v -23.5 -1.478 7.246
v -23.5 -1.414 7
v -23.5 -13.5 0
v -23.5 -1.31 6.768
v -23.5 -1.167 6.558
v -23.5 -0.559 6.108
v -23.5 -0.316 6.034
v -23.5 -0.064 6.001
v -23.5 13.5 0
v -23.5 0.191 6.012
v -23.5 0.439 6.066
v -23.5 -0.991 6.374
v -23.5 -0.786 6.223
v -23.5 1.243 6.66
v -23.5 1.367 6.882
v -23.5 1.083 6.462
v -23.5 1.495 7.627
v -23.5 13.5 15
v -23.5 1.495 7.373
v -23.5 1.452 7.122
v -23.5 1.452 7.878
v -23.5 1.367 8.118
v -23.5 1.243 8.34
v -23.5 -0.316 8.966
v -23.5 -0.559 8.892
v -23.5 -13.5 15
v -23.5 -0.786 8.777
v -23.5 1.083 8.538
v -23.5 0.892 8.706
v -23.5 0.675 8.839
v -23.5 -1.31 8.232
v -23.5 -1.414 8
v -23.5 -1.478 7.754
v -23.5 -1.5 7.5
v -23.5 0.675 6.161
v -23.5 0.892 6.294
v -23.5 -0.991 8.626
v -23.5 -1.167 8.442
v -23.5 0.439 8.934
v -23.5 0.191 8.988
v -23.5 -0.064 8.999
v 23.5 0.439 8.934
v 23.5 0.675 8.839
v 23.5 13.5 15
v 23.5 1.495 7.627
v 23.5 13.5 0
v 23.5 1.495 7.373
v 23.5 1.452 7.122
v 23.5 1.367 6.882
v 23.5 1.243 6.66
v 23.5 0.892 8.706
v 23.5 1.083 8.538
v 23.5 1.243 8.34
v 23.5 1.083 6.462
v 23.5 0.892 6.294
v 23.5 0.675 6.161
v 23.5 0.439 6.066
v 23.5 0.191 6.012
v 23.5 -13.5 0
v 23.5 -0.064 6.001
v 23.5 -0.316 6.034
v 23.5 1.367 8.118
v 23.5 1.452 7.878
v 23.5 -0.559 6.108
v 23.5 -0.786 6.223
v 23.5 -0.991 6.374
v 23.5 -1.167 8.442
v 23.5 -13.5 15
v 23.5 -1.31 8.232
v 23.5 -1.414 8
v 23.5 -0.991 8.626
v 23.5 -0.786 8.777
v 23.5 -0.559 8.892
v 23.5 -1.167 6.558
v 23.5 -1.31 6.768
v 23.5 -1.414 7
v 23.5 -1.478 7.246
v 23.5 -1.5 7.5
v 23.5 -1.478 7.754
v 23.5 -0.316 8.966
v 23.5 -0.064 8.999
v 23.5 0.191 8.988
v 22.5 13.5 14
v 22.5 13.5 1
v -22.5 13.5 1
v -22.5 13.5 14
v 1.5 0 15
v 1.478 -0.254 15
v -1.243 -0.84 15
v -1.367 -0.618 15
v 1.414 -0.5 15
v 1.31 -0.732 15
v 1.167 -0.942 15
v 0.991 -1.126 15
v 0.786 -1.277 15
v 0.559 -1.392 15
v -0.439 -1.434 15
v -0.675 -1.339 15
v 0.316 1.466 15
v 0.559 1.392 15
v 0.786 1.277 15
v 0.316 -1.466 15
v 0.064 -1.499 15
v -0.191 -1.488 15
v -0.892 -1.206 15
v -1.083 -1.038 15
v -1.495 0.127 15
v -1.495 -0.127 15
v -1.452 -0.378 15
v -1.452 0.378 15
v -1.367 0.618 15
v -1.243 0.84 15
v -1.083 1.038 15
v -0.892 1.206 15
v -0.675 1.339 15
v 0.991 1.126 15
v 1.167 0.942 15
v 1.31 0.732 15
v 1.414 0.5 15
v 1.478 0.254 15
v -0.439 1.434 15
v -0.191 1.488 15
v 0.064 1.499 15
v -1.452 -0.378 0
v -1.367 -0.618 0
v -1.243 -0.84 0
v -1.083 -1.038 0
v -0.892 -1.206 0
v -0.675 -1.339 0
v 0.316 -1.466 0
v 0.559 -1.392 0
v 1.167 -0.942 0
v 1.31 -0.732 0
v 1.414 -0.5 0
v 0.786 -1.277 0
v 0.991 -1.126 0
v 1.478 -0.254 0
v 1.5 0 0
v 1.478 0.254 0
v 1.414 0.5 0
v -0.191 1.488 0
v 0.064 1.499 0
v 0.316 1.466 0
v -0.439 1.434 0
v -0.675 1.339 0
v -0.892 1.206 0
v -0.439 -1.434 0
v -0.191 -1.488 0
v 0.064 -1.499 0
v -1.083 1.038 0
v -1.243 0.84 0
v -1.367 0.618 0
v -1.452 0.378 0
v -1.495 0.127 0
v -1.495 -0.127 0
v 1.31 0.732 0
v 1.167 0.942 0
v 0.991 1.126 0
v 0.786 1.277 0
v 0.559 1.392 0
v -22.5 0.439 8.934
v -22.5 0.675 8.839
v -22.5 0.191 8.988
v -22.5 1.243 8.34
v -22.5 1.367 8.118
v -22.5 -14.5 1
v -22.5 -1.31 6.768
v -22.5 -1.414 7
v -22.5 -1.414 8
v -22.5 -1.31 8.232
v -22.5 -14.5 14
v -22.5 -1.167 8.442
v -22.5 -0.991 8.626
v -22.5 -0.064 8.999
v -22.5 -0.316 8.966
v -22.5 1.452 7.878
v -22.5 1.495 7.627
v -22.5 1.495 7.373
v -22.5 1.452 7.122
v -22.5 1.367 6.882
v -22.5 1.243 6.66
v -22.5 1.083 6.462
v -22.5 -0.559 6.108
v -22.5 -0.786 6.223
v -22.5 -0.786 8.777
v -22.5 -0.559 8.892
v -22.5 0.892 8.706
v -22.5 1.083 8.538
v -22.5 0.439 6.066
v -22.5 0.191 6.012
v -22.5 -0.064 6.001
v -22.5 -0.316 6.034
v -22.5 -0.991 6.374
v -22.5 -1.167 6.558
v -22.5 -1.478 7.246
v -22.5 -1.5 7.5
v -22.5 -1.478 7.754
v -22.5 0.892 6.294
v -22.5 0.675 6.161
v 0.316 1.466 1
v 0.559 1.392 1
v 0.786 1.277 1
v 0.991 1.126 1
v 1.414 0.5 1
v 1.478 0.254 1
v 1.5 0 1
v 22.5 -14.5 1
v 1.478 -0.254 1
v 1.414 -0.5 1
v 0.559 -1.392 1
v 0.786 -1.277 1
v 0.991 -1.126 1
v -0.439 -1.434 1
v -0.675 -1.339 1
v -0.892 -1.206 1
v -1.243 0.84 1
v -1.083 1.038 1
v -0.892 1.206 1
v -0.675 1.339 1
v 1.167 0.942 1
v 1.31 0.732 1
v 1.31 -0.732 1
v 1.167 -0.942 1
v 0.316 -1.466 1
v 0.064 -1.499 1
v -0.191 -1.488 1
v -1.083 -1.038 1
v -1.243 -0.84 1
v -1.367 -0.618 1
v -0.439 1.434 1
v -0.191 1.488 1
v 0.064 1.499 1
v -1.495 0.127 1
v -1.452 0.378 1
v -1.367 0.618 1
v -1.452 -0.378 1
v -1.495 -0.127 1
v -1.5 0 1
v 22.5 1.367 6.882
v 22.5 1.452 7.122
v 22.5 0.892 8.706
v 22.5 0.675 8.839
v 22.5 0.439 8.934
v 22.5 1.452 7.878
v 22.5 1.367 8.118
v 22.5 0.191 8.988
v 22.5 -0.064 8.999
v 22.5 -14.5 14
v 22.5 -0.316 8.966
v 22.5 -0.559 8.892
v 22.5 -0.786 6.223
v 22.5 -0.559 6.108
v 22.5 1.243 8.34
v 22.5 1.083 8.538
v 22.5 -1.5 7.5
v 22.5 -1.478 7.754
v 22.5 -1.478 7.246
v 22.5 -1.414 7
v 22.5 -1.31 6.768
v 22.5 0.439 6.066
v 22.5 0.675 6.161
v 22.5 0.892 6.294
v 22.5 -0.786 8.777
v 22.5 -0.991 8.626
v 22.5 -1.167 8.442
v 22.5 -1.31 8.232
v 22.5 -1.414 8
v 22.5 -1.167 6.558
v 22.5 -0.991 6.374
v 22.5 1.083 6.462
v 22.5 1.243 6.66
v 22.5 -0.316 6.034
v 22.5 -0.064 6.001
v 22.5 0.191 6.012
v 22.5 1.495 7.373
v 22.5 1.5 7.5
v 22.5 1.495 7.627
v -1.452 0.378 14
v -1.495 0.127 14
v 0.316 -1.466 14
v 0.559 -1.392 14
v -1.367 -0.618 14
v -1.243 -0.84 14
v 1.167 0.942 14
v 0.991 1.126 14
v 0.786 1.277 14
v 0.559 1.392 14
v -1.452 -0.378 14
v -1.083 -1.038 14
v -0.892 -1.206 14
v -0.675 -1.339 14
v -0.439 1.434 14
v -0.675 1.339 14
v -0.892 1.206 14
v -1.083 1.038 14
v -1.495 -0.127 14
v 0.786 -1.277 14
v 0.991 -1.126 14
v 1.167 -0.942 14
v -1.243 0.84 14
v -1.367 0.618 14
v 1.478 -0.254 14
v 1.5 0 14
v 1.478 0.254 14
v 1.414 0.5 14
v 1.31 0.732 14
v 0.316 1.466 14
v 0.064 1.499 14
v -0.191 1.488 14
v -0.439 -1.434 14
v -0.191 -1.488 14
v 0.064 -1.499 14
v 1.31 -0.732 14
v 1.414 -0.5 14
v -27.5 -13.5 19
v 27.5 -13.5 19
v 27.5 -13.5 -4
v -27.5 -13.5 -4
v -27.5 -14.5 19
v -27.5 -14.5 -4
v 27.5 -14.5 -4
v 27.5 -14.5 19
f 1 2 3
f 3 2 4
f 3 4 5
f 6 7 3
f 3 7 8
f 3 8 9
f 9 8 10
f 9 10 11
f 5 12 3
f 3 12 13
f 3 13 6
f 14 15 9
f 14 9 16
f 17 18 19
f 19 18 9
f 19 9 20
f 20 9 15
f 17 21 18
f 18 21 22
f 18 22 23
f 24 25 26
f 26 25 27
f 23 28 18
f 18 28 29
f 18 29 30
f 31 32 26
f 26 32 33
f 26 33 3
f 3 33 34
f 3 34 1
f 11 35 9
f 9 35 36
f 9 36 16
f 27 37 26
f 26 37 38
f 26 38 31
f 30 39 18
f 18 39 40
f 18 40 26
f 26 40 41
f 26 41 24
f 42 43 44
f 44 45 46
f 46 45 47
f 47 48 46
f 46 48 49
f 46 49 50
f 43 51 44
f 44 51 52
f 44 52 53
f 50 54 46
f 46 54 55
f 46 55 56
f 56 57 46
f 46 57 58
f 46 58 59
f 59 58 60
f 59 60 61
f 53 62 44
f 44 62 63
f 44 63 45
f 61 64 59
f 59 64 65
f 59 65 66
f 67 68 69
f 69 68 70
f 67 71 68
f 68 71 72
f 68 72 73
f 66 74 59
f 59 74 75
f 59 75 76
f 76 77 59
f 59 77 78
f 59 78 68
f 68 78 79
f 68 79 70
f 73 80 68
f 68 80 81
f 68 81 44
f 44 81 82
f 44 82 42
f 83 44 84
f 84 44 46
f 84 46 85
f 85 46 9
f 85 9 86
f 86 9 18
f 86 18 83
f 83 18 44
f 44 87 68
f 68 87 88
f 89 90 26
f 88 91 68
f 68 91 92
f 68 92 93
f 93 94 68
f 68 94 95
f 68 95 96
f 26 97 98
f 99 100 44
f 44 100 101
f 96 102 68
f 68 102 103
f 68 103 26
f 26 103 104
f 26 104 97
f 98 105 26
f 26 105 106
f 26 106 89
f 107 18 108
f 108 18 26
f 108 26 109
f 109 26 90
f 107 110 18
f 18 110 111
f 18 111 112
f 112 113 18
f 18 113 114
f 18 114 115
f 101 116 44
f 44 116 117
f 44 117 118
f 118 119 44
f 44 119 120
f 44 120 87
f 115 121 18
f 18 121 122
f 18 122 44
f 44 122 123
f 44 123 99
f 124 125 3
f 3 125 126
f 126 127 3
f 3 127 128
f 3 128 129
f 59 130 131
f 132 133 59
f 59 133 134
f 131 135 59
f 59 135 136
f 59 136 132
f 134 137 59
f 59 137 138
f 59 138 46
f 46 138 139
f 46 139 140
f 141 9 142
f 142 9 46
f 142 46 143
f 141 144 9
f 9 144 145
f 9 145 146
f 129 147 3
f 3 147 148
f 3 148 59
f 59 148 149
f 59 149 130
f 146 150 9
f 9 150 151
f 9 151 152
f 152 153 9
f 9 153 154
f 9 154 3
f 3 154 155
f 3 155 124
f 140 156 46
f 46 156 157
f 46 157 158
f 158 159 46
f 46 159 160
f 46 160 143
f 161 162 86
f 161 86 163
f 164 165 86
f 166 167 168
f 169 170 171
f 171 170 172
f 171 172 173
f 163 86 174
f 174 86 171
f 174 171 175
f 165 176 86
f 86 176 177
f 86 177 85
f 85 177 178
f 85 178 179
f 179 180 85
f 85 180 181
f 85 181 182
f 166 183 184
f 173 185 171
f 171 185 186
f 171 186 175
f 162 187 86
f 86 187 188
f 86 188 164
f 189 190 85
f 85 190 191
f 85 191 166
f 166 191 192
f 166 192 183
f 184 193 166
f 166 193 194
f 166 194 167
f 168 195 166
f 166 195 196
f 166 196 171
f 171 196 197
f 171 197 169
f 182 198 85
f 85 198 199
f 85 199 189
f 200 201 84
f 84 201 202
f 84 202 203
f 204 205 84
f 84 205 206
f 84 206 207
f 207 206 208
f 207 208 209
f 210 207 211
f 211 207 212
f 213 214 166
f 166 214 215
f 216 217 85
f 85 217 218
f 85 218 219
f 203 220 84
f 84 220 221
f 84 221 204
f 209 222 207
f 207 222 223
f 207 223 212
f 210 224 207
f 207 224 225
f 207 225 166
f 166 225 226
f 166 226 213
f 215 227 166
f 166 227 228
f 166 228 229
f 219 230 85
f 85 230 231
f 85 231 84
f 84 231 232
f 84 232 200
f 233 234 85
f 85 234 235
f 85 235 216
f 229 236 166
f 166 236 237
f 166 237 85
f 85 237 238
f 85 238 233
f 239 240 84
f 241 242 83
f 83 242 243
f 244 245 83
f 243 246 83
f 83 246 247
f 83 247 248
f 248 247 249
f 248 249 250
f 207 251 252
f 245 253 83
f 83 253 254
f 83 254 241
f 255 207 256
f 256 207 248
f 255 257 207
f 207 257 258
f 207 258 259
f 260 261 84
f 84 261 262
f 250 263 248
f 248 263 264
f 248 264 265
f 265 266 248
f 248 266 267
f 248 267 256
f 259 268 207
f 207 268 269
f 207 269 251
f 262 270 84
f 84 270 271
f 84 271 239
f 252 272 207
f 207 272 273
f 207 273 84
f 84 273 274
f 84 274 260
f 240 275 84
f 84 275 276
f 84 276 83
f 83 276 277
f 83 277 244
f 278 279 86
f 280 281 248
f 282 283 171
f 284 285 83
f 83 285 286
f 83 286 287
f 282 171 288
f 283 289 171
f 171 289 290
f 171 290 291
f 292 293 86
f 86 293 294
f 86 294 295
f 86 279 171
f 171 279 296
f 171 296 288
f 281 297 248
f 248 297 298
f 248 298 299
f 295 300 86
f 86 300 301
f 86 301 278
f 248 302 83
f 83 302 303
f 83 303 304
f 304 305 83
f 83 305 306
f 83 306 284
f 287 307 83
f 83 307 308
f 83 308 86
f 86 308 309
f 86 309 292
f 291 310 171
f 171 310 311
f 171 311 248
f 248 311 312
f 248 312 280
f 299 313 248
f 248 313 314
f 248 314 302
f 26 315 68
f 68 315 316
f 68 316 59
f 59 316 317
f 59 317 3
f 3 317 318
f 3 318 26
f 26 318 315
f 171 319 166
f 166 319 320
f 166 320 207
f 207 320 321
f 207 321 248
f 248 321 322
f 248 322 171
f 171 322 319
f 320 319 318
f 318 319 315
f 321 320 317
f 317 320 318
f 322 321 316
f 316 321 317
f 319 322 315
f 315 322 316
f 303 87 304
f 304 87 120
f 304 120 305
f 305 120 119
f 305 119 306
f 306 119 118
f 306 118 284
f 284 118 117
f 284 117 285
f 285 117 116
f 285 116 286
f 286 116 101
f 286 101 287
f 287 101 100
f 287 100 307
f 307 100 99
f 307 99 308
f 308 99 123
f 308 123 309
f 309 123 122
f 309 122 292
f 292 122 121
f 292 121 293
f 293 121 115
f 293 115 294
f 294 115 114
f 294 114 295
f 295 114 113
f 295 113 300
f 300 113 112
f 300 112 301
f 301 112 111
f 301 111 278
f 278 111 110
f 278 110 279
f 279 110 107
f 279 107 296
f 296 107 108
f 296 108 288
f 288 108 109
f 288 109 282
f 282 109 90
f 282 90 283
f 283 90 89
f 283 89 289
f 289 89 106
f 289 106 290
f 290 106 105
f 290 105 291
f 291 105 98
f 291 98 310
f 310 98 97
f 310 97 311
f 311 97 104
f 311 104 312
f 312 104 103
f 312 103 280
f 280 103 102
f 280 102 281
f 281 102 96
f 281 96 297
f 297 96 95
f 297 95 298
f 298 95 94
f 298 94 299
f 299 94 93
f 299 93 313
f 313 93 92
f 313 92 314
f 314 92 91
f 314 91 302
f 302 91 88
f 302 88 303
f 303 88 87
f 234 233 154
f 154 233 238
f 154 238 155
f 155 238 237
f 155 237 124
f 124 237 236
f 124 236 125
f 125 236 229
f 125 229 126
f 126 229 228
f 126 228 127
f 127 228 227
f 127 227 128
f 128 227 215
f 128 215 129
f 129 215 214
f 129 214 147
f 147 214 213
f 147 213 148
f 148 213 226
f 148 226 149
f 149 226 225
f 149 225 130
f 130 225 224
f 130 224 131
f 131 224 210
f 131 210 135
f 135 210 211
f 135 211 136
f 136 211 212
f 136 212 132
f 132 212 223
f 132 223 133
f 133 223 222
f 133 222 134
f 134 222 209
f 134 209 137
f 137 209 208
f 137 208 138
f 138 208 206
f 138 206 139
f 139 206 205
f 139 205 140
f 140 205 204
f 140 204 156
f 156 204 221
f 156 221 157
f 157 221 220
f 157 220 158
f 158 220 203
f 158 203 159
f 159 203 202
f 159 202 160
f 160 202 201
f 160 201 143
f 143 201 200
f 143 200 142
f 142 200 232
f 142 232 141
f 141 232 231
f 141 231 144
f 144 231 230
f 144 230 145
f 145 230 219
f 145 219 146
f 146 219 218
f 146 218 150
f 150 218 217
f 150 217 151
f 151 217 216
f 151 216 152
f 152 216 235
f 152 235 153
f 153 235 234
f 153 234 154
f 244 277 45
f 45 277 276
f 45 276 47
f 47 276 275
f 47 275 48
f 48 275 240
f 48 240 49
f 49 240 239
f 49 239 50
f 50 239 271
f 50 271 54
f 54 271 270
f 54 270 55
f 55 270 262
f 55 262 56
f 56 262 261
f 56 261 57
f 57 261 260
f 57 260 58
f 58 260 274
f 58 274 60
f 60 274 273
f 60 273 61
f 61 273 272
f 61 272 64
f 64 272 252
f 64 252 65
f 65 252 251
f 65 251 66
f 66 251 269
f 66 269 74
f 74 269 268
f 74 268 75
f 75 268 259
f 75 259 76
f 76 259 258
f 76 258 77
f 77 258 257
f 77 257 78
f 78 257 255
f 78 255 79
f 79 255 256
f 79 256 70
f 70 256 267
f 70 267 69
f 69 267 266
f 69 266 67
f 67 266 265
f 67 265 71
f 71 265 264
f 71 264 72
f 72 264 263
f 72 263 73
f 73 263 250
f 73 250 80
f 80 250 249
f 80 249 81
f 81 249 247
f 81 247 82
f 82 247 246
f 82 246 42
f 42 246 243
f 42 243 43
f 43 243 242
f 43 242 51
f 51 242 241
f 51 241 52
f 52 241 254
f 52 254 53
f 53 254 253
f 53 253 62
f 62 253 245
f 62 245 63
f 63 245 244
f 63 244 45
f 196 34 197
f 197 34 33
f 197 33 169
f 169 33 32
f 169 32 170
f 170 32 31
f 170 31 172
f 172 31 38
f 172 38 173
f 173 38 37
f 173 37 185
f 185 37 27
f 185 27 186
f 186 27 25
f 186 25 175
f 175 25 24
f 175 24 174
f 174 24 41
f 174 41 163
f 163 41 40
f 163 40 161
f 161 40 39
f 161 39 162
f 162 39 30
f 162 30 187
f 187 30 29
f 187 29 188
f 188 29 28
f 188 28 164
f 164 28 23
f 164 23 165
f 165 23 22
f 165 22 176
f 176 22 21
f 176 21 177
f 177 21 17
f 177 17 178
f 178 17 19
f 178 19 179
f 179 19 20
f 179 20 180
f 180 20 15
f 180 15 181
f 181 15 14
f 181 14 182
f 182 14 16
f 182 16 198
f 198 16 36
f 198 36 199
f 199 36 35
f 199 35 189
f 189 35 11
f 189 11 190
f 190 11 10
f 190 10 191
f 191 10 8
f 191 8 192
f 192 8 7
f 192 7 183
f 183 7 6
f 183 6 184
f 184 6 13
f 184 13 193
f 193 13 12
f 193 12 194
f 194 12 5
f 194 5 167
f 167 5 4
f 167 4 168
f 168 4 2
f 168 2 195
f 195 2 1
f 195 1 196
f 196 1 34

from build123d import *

# Parameters (mm, degrees)
SKETCH1_W           = 47
SKETCH1_H           = 27
BOSS_EXTRUDE1_DEPTH = 15
SKETCH2_W           = 45
SKETCH2_H           = 13
CUT_EXTRUDE1_DEPTH  = 27
SKETCH3_W           = 55
SKETCH3_H           = 23
SKETCH3_W_2         = 45
SKETCH3_H_2         = 13
BOSS_EXTRUDE2_DEPTH = 1
SKETCH4_R           = 1.5
CUT_EXTRUDE2_DEPTH  = 17
SKETCH5_R           = 1.5
CUT_EXTRUDE3_DEPTH  = 47


with BuildPart() as part:
    # Sketch1 → Boss-Extrude1 (new body)
    with BuildSketch(Plane.XY):
        Rectangle(SKETCH1_W, SKETCH1_H)
    extrude(amount=BOSS_EXTRUDE1_DEPTH)

    # Sketch2 → Cut-Extrude1 (cut)
    with BuildSketch(Plane(origin=(0, 13.5, 0), x_dir=(1, 0, 0), z_dir=(0, 1, 0))):
        with Locations((0, -7.5)):
            Rectangle(SKETCH2_W, SKETCH2_H)
    extrude(amount=-CUT_EXTRUDE1_DEPTH, mode=Mode.SUBTRACT)

    # Sketch3 → Boss-Extrude2 (add)
    with BuildSketch(Plane.XZ.offset(13.5)):
        with Locations((0, 7.5)):
            Rectangle(SKETCH3_W, SKETCH3_H)
        with Locations((0, 7.5)):
            Rectangle(SKETCH3_W_2, SKETCH3_H_2, mode=Mode.SUBTRACT)
    extrude(amount=BOSS_EXTRUDE2_DEPTH)

    # Sketch4 → Cut-Extrude2 (cut)
    with BuildSketch(Plane.XY.offset(15)):
        Circle(SKETCH4_R)
    extrude(amount=-CUT_EXTRUDE2_DEPTH, mode=Mode.SUBTRACT)

    # Sketch5 → Cut-Extrude3 (cut)
    with BuildSketch(Plane.ZY.offset(23.5)):
        with Locations(Location((7.5, 0, 0), (0, 0, 270))):
            Circle(SKETCH5_R)
    extrude(amount=-CUT_EXTRUDE3_DEPTH, mode=Mode.SUBTRACT)


solid = part.part
